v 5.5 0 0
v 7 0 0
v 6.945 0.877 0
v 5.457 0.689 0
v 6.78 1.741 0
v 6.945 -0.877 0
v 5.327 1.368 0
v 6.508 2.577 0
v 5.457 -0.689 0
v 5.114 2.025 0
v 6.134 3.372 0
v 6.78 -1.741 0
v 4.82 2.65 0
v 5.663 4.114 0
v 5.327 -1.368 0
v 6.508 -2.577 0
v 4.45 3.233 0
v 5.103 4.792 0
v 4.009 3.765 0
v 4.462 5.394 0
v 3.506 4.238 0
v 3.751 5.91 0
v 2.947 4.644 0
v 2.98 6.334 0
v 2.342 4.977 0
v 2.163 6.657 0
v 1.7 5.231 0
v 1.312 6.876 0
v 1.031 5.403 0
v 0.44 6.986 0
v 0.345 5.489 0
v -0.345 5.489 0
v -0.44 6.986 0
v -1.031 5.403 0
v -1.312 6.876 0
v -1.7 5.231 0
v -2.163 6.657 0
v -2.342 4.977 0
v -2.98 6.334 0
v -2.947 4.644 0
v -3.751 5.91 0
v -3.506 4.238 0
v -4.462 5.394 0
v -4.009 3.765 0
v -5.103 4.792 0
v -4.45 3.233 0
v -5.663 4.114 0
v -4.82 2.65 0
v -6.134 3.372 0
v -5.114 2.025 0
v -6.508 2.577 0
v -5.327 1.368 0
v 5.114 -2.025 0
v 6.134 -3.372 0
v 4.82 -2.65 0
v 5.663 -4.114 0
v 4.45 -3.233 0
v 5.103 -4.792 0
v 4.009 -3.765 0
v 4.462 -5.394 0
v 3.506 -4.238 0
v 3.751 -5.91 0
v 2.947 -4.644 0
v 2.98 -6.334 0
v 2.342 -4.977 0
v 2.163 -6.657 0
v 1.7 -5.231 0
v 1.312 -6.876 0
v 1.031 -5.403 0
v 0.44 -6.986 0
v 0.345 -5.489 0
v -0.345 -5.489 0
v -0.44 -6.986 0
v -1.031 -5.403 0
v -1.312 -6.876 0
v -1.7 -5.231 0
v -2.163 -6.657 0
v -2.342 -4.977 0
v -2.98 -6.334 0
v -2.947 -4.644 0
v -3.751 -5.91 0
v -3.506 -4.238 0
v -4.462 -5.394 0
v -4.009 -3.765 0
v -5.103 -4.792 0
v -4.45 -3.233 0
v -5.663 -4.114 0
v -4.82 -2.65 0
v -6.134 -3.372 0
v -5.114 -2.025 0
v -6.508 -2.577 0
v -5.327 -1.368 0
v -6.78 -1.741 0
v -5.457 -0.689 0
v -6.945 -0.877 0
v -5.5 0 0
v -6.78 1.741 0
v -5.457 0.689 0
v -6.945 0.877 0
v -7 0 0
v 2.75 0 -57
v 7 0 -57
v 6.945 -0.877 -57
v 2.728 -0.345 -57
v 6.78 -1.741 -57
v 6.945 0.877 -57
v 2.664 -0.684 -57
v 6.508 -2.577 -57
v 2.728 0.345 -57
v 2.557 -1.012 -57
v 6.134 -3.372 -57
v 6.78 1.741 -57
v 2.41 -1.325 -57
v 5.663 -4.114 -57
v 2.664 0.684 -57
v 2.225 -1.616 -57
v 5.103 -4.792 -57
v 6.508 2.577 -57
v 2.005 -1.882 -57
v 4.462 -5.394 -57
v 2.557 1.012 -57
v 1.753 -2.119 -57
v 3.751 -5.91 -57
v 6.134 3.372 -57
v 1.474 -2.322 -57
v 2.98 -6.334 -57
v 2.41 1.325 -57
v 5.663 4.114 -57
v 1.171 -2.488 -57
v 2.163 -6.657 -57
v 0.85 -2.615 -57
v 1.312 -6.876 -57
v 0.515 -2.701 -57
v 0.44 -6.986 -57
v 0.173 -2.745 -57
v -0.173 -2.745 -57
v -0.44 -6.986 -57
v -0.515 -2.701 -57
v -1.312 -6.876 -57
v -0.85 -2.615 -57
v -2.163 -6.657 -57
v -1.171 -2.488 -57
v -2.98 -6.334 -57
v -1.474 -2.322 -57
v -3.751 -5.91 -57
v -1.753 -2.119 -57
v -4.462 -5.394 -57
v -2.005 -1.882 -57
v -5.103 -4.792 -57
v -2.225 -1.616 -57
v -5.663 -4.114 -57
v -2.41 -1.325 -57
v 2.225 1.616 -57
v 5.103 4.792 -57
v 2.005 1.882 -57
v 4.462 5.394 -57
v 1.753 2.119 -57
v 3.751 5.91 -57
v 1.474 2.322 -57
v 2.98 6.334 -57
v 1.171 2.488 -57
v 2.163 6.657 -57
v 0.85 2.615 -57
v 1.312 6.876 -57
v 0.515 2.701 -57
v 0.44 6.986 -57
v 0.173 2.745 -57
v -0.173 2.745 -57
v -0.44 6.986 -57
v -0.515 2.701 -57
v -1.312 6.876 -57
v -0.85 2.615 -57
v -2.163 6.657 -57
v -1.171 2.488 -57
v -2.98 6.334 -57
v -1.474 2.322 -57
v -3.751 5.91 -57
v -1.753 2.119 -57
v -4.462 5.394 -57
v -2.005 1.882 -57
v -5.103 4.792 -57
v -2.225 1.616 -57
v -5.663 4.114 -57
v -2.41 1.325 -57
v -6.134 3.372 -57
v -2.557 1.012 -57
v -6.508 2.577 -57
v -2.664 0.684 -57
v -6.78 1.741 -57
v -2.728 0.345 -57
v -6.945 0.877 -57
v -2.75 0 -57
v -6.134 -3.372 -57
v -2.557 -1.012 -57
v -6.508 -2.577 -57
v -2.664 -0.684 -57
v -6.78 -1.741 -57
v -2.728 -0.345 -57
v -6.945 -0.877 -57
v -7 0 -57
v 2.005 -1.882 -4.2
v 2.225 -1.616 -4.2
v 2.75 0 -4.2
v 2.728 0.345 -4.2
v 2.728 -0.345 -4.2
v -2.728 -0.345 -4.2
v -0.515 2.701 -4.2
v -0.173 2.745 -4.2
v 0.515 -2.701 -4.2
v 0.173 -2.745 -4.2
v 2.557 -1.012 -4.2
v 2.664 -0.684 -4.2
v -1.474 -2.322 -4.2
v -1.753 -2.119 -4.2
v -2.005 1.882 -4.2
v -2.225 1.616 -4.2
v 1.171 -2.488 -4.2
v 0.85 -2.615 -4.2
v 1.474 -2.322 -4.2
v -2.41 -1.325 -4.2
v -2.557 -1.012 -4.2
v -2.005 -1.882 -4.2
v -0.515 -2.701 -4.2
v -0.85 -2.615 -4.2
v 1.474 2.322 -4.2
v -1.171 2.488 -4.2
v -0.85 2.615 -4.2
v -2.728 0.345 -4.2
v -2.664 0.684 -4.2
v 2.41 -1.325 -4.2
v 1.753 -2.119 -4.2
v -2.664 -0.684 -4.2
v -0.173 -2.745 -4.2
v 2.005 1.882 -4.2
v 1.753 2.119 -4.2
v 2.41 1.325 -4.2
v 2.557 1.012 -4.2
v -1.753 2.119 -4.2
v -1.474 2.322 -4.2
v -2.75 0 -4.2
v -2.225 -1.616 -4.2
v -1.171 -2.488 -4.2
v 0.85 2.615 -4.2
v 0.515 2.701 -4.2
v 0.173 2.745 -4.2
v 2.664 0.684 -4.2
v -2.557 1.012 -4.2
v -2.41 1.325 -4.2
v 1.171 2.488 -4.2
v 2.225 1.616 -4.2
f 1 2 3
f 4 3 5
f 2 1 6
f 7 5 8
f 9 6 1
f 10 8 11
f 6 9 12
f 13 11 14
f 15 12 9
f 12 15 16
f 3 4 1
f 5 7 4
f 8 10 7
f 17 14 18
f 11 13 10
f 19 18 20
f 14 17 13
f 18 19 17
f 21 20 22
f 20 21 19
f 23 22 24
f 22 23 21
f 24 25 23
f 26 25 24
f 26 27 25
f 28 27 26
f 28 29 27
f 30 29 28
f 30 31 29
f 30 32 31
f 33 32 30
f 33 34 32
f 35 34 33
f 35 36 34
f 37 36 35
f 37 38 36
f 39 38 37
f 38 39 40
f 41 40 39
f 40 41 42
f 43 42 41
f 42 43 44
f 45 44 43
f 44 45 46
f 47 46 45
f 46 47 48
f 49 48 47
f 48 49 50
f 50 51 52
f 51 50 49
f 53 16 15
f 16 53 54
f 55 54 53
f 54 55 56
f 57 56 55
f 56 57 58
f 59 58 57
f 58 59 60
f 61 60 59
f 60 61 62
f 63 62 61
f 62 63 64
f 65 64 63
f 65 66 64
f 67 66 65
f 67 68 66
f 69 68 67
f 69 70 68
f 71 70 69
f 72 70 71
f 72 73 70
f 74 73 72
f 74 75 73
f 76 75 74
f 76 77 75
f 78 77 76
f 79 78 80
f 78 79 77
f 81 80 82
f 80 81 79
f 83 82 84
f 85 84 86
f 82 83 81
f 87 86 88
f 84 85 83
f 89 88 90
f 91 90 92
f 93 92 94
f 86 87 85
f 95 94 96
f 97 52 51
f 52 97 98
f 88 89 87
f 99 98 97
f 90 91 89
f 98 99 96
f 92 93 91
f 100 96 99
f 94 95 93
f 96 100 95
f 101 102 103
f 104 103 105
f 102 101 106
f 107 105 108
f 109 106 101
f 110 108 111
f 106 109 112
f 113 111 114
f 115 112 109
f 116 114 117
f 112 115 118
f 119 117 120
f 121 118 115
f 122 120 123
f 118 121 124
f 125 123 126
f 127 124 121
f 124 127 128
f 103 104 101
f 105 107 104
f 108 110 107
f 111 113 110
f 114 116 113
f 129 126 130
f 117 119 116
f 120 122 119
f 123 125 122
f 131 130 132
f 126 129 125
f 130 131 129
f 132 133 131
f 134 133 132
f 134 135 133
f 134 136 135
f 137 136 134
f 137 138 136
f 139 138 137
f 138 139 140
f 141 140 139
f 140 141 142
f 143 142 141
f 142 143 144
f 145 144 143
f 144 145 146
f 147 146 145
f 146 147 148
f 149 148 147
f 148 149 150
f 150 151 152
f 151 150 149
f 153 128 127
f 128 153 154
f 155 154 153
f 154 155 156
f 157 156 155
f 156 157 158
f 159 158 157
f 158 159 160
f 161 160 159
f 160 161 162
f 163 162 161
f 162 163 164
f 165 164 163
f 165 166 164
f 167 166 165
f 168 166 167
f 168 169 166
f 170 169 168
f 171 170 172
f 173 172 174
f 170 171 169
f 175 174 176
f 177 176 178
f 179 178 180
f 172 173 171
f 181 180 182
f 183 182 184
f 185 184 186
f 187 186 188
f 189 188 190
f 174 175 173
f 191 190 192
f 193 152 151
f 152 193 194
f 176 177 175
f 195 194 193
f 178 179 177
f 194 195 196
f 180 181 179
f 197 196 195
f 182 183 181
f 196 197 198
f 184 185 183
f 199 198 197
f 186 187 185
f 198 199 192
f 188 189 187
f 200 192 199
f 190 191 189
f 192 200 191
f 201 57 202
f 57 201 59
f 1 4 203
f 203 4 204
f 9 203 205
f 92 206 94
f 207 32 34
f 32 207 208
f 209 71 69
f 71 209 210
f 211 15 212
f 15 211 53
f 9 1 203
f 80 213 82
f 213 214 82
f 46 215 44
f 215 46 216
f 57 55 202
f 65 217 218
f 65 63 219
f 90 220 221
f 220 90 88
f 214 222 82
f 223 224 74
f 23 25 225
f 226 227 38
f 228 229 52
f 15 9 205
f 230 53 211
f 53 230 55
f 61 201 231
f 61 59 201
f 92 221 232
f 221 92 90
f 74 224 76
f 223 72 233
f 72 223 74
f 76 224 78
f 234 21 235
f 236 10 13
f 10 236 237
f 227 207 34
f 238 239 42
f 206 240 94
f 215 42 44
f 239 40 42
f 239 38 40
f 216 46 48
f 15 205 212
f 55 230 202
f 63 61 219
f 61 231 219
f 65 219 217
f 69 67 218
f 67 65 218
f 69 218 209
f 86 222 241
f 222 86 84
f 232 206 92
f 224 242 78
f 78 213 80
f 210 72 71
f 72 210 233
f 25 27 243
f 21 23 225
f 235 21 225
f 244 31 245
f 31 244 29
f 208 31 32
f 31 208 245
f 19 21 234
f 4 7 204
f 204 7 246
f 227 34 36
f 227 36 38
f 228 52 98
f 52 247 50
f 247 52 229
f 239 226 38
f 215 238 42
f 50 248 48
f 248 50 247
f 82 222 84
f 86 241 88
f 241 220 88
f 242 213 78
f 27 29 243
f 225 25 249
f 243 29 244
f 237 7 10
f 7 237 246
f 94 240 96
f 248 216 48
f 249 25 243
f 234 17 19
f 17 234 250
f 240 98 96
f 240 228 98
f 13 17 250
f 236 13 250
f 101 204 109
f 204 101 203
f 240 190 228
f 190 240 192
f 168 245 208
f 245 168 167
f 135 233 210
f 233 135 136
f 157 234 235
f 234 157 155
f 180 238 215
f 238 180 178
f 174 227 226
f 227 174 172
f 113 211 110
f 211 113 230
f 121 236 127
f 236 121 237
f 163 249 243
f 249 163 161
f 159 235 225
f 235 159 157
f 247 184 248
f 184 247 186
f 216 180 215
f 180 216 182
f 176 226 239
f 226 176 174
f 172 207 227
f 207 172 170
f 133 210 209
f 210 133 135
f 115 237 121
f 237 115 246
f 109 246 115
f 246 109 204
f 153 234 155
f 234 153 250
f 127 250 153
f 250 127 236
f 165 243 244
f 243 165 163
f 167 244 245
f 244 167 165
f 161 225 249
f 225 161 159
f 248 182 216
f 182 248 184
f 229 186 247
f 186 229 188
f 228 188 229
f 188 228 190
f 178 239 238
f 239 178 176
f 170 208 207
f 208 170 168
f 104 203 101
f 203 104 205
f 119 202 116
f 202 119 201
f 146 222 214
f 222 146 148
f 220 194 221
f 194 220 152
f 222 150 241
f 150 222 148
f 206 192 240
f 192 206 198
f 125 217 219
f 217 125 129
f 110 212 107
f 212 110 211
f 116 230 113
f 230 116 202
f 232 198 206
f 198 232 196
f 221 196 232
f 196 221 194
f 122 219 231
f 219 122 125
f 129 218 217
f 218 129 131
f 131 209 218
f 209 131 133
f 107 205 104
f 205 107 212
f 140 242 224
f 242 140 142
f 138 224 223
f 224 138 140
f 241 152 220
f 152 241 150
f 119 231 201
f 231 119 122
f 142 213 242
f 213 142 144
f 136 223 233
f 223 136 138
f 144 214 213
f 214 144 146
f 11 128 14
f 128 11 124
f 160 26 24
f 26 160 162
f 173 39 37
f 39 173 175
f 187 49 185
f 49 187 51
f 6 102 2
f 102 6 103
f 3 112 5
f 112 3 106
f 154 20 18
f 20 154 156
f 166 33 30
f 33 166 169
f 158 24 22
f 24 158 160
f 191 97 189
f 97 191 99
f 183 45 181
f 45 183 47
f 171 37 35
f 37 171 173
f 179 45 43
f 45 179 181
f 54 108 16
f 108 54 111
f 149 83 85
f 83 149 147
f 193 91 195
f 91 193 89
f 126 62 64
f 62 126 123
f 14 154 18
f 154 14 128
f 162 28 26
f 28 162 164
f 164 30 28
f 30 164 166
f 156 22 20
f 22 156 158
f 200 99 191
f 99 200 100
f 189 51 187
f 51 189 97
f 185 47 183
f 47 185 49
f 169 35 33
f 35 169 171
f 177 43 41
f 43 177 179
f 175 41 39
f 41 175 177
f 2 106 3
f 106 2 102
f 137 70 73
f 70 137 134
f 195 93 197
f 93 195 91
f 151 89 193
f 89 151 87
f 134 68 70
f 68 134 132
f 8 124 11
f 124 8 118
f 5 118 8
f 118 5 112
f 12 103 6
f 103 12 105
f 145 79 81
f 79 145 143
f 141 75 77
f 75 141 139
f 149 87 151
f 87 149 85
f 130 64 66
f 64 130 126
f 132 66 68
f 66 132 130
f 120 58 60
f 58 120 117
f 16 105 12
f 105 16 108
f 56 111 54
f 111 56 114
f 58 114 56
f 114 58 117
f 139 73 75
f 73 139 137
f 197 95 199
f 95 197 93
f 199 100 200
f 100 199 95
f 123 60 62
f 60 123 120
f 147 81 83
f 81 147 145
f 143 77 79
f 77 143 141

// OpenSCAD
$fn = 50;


difference() {
	union() {
		translate(v = [0, 0, -57.0000000000]) {
			cylinder(h = 57, r = 7.0000000000);
		}
		cylinder(h = 0, r = 16.0000000000);
	}
	union() {
		translate(v = [0, 0, 0]) {
			rotate(a = [0, 0, 0]) {
				difference() {
					union() {
						#translate(v = [0, 0, -57.0000000000]) {
							cylinder(h = 57, r = 2.2500000000);
						}
						#translate(v = [0, 0, -4.2000000000]) {
							cylinder(h = 4.2000000000, r1 = 2.7500000000, r2 = 5.5000000000);
						}
						#translate(v = [0, 0, -57.0000000000]) {
							cylinder(h = 57, r = 2.7500000000);
						}
						#translate(v = [0, 0, -57.0000000000]) {
							cylinder(h = 57, r = 2.2500000000);
						}
					}
					union();
				}
			}
		}
	}
}
